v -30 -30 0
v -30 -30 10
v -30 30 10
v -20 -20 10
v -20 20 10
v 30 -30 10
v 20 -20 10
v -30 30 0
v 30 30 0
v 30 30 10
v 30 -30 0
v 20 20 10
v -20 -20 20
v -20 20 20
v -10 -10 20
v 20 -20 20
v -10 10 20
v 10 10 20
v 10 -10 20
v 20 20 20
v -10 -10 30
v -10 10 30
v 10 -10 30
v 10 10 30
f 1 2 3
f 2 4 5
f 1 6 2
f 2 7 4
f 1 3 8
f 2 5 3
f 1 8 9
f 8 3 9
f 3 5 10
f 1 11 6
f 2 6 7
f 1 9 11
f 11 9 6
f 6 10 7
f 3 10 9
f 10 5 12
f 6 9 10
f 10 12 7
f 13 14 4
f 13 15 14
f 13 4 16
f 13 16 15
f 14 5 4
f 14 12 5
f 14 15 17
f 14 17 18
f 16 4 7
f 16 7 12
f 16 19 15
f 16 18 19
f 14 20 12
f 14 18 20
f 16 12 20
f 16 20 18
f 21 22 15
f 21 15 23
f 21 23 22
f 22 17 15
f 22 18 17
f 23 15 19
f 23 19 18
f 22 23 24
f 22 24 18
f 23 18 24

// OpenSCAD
// 3段の階段状ピラミッド

module centered_cube(size) {
    translate([-size/2, -size/2, 0])
        cube([size, size, 10]);
}

// 1段目 (底辺 60mm × 60mm × 高さ 10mm)
color("red")
centered_cube(60);

// 2段目 (40mm × 40mm × 高さ 10mm)
color("green")
translate([0, 0, 10])
centered_cube(40);

// 3段目 (20mm × 20mm × 高さ 10mm)
color("blue")
translate([0, 0, 20])
centered_cube(20);
